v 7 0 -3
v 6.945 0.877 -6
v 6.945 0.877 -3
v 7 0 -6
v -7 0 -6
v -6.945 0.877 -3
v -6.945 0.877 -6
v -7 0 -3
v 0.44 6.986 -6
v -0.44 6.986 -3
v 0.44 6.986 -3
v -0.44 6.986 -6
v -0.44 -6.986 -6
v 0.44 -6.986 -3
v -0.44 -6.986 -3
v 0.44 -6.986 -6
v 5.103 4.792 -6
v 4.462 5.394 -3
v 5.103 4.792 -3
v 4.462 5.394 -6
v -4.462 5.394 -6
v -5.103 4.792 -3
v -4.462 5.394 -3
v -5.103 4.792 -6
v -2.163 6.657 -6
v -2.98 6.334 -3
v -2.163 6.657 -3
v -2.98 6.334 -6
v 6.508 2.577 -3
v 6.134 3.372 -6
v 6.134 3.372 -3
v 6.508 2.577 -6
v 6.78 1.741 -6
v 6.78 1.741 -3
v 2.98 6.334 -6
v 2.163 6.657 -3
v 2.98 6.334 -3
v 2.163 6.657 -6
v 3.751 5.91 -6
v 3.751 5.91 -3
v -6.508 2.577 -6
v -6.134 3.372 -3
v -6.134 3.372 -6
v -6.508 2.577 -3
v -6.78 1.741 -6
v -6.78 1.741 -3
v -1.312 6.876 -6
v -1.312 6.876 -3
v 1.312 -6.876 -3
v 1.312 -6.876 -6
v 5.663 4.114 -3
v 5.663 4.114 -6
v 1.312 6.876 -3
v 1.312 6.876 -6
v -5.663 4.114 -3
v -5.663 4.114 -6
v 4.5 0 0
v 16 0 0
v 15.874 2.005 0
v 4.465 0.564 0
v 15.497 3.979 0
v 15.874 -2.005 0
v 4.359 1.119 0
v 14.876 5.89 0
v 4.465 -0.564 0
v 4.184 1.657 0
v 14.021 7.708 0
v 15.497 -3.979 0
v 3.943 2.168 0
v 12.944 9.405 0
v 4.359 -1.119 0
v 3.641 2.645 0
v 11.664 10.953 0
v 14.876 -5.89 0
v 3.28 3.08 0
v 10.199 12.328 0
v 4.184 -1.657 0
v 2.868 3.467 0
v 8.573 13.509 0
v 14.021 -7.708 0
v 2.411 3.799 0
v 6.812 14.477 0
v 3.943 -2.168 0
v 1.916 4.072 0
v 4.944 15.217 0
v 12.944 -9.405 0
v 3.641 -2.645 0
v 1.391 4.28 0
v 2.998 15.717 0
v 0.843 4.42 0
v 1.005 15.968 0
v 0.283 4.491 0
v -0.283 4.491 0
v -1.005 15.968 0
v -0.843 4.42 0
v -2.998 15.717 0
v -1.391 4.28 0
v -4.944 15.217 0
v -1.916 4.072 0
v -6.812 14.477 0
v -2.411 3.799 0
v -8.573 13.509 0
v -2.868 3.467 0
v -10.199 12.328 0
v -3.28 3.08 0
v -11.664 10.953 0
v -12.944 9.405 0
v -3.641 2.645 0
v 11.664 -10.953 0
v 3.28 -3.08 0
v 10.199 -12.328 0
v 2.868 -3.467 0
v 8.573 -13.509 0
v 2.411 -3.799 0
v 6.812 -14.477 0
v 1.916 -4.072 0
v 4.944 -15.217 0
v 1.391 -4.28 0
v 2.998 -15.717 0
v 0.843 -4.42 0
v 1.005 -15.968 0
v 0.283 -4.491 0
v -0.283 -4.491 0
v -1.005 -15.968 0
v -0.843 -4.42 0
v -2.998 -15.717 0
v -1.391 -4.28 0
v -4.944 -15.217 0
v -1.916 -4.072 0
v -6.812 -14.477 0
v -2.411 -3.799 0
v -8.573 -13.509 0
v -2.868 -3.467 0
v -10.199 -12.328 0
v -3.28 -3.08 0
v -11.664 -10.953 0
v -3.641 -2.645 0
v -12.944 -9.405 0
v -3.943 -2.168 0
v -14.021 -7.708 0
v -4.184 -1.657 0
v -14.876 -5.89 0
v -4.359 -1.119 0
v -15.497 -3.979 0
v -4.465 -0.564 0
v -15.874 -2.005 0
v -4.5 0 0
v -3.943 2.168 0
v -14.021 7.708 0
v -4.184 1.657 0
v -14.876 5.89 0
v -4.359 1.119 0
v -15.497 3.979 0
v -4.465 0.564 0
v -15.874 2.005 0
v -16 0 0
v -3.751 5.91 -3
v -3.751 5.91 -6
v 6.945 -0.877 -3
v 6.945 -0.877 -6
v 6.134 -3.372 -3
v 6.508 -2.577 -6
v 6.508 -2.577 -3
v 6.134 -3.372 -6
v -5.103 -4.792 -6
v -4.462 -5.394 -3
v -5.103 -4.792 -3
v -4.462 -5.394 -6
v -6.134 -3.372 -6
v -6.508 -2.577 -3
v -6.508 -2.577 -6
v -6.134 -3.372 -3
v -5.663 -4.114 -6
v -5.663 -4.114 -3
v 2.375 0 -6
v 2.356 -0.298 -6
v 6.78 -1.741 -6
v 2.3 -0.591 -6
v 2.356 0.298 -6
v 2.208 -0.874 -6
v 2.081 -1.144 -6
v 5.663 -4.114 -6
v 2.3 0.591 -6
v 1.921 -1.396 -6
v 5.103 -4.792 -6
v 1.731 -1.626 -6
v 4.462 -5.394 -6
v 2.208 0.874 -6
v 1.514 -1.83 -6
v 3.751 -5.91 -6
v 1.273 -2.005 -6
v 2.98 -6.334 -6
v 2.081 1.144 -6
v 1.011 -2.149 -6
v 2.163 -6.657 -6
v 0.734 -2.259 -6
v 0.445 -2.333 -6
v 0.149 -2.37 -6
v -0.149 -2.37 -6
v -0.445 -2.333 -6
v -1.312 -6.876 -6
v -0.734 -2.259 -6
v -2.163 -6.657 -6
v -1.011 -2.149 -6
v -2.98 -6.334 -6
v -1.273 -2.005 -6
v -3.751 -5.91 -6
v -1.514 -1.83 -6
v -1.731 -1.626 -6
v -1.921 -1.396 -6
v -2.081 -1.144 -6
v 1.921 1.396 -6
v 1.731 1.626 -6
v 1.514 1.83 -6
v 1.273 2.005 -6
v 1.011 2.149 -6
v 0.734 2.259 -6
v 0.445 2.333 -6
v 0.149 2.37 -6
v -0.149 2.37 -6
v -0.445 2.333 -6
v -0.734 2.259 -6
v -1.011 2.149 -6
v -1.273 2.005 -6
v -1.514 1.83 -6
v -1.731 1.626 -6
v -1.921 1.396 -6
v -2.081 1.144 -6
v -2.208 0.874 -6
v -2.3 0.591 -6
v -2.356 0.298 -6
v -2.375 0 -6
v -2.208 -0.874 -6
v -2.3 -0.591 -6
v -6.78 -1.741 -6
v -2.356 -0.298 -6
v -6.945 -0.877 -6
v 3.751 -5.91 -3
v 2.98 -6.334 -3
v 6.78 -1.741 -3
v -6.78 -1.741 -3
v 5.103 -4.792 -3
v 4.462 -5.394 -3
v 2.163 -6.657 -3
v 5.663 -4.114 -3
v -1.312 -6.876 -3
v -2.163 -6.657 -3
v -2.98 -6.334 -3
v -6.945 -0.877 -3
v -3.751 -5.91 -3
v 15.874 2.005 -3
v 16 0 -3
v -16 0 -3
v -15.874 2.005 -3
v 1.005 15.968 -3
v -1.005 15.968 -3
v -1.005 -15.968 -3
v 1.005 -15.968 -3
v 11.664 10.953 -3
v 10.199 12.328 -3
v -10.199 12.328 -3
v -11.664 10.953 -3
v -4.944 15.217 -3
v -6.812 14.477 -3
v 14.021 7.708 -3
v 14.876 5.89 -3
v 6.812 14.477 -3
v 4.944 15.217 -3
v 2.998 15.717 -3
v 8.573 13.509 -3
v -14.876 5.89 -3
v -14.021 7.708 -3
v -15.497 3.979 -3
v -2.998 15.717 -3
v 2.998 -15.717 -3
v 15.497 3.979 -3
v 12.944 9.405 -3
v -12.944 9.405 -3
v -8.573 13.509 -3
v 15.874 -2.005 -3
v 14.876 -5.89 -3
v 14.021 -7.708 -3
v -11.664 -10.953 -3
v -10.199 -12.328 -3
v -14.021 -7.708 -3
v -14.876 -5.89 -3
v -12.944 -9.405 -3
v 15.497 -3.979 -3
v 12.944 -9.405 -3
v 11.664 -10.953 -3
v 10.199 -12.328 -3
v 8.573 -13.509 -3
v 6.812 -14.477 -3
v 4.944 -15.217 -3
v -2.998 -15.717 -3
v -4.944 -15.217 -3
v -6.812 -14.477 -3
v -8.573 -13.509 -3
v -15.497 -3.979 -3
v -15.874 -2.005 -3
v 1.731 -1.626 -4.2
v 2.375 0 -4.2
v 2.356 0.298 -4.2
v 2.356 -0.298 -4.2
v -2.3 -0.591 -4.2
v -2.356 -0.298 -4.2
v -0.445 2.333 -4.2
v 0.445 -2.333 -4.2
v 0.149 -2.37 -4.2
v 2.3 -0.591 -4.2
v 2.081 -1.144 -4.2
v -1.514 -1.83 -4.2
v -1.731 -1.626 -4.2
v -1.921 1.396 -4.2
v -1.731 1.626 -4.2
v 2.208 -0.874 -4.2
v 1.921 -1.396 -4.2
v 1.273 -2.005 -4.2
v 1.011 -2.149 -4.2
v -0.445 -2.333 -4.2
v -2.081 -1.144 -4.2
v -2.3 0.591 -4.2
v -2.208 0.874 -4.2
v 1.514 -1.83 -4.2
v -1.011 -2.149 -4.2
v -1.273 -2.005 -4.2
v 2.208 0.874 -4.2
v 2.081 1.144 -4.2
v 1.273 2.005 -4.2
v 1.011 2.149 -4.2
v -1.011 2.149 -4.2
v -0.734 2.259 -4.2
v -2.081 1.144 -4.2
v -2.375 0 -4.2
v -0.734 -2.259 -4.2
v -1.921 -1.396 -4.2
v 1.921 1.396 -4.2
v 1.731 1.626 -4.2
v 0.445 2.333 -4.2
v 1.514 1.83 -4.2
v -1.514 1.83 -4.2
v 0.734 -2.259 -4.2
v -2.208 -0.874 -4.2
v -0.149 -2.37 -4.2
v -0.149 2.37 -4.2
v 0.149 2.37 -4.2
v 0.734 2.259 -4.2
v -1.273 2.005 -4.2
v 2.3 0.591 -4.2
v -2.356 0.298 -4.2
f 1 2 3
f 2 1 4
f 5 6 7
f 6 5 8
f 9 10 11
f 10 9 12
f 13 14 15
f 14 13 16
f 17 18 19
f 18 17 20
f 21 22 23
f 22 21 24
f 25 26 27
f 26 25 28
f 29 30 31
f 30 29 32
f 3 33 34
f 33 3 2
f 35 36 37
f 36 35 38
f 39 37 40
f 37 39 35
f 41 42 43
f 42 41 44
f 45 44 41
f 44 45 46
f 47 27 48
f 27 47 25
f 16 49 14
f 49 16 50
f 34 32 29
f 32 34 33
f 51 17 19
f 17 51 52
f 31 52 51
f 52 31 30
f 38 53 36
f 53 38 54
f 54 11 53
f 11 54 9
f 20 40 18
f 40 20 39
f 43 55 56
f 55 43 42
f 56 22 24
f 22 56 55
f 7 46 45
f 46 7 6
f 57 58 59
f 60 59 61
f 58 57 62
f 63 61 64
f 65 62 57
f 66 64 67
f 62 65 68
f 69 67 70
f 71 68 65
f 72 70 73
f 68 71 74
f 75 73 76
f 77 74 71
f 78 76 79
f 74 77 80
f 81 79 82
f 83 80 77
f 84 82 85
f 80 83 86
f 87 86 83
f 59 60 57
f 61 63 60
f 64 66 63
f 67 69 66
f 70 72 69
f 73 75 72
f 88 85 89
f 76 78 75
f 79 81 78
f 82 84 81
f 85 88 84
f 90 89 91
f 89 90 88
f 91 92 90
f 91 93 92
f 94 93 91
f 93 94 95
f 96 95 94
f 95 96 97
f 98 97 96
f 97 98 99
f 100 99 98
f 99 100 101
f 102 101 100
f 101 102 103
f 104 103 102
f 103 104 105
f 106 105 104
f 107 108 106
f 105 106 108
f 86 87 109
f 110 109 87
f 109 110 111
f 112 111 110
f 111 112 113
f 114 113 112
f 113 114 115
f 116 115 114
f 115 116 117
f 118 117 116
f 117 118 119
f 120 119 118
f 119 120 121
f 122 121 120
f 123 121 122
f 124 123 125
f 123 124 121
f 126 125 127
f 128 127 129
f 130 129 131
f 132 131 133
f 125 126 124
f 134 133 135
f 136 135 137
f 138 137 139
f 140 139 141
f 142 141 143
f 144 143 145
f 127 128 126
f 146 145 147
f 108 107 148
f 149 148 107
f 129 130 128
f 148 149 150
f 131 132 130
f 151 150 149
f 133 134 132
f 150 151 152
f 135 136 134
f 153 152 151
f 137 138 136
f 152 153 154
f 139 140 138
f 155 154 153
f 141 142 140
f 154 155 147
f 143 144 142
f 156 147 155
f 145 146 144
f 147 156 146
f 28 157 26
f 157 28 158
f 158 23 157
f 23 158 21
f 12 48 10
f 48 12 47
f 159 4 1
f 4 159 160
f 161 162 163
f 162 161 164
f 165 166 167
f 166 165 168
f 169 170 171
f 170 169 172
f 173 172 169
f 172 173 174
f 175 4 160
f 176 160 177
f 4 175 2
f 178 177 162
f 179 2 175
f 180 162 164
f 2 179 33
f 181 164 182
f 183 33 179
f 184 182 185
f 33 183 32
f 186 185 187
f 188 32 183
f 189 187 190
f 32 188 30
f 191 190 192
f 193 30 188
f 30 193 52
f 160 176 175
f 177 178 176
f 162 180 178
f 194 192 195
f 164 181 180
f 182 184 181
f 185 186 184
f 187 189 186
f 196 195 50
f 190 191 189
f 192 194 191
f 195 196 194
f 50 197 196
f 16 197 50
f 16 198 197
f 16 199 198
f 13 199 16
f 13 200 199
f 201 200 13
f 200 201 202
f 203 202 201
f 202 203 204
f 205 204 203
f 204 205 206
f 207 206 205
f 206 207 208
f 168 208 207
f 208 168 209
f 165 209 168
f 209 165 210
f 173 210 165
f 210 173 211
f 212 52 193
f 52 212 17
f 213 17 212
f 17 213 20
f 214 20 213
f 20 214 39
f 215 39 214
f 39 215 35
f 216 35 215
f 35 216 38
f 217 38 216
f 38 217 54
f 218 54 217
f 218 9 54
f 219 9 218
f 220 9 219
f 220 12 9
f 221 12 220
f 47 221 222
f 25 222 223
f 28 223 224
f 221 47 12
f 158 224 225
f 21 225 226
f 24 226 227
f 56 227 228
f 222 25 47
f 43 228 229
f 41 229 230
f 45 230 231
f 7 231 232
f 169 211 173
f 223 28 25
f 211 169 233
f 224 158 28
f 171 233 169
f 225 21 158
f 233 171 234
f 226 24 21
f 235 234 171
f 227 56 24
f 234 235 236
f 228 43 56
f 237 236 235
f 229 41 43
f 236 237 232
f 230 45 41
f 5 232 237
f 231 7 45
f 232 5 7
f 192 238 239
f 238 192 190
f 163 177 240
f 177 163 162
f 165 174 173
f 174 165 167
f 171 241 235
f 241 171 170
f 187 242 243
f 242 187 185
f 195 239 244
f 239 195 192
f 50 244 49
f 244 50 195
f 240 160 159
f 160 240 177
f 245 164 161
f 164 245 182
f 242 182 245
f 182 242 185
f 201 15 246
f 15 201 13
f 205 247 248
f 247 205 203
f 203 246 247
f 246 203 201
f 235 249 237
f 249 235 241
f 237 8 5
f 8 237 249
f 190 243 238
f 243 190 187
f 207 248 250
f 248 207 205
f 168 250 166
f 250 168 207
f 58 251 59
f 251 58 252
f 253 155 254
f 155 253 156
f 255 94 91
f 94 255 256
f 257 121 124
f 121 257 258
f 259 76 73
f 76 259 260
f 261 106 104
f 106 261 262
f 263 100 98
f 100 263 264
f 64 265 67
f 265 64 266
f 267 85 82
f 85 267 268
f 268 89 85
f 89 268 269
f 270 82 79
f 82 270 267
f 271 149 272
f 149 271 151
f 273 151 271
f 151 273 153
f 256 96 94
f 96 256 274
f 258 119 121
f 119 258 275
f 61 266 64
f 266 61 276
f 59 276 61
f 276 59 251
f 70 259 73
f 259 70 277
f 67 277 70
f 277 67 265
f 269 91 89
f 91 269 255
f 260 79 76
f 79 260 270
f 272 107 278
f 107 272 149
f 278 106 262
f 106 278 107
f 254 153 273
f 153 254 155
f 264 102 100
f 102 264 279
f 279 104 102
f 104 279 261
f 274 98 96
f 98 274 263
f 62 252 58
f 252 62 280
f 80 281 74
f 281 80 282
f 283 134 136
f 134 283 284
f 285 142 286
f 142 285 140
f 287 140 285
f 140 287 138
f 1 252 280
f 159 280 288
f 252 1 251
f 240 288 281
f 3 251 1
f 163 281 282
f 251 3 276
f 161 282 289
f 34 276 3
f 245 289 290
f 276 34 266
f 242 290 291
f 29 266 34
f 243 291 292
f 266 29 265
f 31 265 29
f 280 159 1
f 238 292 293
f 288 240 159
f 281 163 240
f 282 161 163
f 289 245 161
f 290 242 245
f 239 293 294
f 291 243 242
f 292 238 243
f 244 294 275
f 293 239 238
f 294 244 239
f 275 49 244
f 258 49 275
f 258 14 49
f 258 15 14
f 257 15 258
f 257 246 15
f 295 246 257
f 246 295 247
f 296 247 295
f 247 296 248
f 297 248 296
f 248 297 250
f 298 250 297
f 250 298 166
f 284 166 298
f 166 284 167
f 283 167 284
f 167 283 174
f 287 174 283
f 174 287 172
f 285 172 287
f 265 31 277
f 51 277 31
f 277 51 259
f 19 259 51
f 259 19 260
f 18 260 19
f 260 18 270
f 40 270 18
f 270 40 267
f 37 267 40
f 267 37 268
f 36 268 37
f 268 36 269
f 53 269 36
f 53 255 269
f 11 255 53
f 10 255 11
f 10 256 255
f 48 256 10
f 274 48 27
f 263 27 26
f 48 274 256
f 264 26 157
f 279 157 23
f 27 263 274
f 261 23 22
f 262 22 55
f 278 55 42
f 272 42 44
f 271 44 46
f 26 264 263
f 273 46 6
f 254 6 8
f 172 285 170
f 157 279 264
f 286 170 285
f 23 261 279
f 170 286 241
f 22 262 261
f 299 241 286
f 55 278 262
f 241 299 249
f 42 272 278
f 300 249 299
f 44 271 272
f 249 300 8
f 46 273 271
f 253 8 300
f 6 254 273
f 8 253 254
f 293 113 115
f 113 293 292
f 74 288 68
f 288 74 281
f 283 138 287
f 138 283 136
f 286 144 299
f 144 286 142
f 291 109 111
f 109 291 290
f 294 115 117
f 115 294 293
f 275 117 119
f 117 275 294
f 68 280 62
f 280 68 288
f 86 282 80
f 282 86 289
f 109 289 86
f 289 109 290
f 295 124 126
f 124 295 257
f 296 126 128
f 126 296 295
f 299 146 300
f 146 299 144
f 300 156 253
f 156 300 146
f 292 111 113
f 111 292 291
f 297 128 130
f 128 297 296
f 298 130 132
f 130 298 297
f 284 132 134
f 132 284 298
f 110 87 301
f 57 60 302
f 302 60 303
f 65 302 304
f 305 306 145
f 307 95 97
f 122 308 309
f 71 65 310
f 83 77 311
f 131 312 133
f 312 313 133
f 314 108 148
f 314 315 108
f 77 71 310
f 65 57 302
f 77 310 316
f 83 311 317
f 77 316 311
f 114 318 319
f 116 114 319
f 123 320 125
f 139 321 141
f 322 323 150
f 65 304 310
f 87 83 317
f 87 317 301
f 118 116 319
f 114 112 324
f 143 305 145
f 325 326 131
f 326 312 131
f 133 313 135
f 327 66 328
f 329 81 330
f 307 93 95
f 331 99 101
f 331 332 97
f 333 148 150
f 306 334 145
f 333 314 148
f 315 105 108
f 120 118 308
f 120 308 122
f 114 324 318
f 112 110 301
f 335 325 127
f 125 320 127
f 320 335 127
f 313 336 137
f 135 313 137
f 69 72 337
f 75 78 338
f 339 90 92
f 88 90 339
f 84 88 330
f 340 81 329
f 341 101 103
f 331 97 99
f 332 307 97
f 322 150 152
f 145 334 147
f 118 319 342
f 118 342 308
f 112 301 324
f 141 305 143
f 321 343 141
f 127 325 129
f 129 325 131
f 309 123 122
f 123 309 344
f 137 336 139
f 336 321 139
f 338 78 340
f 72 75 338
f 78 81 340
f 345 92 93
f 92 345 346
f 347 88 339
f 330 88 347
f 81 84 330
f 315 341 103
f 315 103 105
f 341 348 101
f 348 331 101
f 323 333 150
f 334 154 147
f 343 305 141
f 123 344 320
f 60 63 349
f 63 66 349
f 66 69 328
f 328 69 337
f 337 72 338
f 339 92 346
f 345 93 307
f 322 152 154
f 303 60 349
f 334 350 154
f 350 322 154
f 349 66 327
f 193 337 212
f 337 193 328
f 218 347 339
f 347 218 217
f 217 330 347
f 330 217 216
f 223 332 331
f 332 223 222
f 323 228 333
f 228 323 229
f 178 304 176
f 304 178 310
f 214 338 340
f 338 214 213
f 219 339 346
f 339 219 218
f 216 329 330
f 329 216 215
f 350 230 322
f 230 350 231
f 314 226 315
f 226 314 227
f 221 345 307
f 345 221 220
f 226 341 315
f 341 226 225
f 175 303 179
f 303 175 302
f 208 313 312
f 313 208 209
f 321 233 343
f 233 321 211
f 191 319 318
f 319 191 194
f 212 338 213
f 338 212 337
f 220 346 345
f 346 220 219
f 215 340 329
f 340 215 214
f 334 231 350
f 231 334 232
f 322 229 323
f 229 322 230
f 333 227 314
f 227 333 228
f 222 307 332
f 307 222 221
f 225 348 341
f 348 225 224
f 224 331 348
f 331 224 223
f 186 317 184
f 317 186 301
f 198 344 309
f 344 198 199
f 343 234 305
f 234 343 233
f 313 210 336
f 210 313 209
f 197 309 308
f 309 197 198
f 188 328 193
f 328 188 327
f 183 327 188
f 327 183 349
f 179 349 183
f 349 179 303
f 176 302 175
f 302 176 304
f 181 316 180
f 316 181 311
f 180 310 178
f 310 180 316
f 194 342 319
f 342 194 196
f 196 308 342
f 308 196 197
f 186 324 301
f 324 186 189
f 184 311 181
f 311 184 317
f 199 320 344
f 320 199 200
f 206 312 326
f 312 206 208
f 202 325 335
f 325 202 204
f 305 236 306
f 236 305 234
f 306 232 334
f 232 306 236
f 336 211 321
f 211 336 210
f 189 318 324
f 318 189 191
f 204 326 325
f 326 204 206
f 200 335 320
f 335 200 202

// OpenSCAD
$fn = 50;


difference() {
	union() {
		translate(v = [0, 0, -6.0000000000]) {
			cylinder(h = 6, r = 7.0000000000);
		}
		translate(v = [0, 0, -3.0000000000]) {
			cylinder(h = 3, r = 16.0000000000);
		}
	}
	union() {
		translate(v = [0, 0, 0]) {
			rotate(a = [0, 0, 0]) {
				difference() {
					union() {
						#translate(v = [0, 0, -6.0000000000]) {
							cylinder(h = 6, r = 2.2500000000);
						}
						#translate(v = [0, 0, -4.2000000000]) {
							cylinder(h = 4.2000000000, r = 7.0000000000, r1 = 2.3750000000, r2 = 4.5000000000);
						}
						#translate(v = [0, 0, -6.0000000000]) {
							cylinder(h = 6, r = 2.3750000000);
						}
						#translate(v = [0, 0, -6.0000000000]) {
							cylinder(h = 6, r = 2.2500000000);
						}
					}
					union();
				}
			}
		}
	}
}
